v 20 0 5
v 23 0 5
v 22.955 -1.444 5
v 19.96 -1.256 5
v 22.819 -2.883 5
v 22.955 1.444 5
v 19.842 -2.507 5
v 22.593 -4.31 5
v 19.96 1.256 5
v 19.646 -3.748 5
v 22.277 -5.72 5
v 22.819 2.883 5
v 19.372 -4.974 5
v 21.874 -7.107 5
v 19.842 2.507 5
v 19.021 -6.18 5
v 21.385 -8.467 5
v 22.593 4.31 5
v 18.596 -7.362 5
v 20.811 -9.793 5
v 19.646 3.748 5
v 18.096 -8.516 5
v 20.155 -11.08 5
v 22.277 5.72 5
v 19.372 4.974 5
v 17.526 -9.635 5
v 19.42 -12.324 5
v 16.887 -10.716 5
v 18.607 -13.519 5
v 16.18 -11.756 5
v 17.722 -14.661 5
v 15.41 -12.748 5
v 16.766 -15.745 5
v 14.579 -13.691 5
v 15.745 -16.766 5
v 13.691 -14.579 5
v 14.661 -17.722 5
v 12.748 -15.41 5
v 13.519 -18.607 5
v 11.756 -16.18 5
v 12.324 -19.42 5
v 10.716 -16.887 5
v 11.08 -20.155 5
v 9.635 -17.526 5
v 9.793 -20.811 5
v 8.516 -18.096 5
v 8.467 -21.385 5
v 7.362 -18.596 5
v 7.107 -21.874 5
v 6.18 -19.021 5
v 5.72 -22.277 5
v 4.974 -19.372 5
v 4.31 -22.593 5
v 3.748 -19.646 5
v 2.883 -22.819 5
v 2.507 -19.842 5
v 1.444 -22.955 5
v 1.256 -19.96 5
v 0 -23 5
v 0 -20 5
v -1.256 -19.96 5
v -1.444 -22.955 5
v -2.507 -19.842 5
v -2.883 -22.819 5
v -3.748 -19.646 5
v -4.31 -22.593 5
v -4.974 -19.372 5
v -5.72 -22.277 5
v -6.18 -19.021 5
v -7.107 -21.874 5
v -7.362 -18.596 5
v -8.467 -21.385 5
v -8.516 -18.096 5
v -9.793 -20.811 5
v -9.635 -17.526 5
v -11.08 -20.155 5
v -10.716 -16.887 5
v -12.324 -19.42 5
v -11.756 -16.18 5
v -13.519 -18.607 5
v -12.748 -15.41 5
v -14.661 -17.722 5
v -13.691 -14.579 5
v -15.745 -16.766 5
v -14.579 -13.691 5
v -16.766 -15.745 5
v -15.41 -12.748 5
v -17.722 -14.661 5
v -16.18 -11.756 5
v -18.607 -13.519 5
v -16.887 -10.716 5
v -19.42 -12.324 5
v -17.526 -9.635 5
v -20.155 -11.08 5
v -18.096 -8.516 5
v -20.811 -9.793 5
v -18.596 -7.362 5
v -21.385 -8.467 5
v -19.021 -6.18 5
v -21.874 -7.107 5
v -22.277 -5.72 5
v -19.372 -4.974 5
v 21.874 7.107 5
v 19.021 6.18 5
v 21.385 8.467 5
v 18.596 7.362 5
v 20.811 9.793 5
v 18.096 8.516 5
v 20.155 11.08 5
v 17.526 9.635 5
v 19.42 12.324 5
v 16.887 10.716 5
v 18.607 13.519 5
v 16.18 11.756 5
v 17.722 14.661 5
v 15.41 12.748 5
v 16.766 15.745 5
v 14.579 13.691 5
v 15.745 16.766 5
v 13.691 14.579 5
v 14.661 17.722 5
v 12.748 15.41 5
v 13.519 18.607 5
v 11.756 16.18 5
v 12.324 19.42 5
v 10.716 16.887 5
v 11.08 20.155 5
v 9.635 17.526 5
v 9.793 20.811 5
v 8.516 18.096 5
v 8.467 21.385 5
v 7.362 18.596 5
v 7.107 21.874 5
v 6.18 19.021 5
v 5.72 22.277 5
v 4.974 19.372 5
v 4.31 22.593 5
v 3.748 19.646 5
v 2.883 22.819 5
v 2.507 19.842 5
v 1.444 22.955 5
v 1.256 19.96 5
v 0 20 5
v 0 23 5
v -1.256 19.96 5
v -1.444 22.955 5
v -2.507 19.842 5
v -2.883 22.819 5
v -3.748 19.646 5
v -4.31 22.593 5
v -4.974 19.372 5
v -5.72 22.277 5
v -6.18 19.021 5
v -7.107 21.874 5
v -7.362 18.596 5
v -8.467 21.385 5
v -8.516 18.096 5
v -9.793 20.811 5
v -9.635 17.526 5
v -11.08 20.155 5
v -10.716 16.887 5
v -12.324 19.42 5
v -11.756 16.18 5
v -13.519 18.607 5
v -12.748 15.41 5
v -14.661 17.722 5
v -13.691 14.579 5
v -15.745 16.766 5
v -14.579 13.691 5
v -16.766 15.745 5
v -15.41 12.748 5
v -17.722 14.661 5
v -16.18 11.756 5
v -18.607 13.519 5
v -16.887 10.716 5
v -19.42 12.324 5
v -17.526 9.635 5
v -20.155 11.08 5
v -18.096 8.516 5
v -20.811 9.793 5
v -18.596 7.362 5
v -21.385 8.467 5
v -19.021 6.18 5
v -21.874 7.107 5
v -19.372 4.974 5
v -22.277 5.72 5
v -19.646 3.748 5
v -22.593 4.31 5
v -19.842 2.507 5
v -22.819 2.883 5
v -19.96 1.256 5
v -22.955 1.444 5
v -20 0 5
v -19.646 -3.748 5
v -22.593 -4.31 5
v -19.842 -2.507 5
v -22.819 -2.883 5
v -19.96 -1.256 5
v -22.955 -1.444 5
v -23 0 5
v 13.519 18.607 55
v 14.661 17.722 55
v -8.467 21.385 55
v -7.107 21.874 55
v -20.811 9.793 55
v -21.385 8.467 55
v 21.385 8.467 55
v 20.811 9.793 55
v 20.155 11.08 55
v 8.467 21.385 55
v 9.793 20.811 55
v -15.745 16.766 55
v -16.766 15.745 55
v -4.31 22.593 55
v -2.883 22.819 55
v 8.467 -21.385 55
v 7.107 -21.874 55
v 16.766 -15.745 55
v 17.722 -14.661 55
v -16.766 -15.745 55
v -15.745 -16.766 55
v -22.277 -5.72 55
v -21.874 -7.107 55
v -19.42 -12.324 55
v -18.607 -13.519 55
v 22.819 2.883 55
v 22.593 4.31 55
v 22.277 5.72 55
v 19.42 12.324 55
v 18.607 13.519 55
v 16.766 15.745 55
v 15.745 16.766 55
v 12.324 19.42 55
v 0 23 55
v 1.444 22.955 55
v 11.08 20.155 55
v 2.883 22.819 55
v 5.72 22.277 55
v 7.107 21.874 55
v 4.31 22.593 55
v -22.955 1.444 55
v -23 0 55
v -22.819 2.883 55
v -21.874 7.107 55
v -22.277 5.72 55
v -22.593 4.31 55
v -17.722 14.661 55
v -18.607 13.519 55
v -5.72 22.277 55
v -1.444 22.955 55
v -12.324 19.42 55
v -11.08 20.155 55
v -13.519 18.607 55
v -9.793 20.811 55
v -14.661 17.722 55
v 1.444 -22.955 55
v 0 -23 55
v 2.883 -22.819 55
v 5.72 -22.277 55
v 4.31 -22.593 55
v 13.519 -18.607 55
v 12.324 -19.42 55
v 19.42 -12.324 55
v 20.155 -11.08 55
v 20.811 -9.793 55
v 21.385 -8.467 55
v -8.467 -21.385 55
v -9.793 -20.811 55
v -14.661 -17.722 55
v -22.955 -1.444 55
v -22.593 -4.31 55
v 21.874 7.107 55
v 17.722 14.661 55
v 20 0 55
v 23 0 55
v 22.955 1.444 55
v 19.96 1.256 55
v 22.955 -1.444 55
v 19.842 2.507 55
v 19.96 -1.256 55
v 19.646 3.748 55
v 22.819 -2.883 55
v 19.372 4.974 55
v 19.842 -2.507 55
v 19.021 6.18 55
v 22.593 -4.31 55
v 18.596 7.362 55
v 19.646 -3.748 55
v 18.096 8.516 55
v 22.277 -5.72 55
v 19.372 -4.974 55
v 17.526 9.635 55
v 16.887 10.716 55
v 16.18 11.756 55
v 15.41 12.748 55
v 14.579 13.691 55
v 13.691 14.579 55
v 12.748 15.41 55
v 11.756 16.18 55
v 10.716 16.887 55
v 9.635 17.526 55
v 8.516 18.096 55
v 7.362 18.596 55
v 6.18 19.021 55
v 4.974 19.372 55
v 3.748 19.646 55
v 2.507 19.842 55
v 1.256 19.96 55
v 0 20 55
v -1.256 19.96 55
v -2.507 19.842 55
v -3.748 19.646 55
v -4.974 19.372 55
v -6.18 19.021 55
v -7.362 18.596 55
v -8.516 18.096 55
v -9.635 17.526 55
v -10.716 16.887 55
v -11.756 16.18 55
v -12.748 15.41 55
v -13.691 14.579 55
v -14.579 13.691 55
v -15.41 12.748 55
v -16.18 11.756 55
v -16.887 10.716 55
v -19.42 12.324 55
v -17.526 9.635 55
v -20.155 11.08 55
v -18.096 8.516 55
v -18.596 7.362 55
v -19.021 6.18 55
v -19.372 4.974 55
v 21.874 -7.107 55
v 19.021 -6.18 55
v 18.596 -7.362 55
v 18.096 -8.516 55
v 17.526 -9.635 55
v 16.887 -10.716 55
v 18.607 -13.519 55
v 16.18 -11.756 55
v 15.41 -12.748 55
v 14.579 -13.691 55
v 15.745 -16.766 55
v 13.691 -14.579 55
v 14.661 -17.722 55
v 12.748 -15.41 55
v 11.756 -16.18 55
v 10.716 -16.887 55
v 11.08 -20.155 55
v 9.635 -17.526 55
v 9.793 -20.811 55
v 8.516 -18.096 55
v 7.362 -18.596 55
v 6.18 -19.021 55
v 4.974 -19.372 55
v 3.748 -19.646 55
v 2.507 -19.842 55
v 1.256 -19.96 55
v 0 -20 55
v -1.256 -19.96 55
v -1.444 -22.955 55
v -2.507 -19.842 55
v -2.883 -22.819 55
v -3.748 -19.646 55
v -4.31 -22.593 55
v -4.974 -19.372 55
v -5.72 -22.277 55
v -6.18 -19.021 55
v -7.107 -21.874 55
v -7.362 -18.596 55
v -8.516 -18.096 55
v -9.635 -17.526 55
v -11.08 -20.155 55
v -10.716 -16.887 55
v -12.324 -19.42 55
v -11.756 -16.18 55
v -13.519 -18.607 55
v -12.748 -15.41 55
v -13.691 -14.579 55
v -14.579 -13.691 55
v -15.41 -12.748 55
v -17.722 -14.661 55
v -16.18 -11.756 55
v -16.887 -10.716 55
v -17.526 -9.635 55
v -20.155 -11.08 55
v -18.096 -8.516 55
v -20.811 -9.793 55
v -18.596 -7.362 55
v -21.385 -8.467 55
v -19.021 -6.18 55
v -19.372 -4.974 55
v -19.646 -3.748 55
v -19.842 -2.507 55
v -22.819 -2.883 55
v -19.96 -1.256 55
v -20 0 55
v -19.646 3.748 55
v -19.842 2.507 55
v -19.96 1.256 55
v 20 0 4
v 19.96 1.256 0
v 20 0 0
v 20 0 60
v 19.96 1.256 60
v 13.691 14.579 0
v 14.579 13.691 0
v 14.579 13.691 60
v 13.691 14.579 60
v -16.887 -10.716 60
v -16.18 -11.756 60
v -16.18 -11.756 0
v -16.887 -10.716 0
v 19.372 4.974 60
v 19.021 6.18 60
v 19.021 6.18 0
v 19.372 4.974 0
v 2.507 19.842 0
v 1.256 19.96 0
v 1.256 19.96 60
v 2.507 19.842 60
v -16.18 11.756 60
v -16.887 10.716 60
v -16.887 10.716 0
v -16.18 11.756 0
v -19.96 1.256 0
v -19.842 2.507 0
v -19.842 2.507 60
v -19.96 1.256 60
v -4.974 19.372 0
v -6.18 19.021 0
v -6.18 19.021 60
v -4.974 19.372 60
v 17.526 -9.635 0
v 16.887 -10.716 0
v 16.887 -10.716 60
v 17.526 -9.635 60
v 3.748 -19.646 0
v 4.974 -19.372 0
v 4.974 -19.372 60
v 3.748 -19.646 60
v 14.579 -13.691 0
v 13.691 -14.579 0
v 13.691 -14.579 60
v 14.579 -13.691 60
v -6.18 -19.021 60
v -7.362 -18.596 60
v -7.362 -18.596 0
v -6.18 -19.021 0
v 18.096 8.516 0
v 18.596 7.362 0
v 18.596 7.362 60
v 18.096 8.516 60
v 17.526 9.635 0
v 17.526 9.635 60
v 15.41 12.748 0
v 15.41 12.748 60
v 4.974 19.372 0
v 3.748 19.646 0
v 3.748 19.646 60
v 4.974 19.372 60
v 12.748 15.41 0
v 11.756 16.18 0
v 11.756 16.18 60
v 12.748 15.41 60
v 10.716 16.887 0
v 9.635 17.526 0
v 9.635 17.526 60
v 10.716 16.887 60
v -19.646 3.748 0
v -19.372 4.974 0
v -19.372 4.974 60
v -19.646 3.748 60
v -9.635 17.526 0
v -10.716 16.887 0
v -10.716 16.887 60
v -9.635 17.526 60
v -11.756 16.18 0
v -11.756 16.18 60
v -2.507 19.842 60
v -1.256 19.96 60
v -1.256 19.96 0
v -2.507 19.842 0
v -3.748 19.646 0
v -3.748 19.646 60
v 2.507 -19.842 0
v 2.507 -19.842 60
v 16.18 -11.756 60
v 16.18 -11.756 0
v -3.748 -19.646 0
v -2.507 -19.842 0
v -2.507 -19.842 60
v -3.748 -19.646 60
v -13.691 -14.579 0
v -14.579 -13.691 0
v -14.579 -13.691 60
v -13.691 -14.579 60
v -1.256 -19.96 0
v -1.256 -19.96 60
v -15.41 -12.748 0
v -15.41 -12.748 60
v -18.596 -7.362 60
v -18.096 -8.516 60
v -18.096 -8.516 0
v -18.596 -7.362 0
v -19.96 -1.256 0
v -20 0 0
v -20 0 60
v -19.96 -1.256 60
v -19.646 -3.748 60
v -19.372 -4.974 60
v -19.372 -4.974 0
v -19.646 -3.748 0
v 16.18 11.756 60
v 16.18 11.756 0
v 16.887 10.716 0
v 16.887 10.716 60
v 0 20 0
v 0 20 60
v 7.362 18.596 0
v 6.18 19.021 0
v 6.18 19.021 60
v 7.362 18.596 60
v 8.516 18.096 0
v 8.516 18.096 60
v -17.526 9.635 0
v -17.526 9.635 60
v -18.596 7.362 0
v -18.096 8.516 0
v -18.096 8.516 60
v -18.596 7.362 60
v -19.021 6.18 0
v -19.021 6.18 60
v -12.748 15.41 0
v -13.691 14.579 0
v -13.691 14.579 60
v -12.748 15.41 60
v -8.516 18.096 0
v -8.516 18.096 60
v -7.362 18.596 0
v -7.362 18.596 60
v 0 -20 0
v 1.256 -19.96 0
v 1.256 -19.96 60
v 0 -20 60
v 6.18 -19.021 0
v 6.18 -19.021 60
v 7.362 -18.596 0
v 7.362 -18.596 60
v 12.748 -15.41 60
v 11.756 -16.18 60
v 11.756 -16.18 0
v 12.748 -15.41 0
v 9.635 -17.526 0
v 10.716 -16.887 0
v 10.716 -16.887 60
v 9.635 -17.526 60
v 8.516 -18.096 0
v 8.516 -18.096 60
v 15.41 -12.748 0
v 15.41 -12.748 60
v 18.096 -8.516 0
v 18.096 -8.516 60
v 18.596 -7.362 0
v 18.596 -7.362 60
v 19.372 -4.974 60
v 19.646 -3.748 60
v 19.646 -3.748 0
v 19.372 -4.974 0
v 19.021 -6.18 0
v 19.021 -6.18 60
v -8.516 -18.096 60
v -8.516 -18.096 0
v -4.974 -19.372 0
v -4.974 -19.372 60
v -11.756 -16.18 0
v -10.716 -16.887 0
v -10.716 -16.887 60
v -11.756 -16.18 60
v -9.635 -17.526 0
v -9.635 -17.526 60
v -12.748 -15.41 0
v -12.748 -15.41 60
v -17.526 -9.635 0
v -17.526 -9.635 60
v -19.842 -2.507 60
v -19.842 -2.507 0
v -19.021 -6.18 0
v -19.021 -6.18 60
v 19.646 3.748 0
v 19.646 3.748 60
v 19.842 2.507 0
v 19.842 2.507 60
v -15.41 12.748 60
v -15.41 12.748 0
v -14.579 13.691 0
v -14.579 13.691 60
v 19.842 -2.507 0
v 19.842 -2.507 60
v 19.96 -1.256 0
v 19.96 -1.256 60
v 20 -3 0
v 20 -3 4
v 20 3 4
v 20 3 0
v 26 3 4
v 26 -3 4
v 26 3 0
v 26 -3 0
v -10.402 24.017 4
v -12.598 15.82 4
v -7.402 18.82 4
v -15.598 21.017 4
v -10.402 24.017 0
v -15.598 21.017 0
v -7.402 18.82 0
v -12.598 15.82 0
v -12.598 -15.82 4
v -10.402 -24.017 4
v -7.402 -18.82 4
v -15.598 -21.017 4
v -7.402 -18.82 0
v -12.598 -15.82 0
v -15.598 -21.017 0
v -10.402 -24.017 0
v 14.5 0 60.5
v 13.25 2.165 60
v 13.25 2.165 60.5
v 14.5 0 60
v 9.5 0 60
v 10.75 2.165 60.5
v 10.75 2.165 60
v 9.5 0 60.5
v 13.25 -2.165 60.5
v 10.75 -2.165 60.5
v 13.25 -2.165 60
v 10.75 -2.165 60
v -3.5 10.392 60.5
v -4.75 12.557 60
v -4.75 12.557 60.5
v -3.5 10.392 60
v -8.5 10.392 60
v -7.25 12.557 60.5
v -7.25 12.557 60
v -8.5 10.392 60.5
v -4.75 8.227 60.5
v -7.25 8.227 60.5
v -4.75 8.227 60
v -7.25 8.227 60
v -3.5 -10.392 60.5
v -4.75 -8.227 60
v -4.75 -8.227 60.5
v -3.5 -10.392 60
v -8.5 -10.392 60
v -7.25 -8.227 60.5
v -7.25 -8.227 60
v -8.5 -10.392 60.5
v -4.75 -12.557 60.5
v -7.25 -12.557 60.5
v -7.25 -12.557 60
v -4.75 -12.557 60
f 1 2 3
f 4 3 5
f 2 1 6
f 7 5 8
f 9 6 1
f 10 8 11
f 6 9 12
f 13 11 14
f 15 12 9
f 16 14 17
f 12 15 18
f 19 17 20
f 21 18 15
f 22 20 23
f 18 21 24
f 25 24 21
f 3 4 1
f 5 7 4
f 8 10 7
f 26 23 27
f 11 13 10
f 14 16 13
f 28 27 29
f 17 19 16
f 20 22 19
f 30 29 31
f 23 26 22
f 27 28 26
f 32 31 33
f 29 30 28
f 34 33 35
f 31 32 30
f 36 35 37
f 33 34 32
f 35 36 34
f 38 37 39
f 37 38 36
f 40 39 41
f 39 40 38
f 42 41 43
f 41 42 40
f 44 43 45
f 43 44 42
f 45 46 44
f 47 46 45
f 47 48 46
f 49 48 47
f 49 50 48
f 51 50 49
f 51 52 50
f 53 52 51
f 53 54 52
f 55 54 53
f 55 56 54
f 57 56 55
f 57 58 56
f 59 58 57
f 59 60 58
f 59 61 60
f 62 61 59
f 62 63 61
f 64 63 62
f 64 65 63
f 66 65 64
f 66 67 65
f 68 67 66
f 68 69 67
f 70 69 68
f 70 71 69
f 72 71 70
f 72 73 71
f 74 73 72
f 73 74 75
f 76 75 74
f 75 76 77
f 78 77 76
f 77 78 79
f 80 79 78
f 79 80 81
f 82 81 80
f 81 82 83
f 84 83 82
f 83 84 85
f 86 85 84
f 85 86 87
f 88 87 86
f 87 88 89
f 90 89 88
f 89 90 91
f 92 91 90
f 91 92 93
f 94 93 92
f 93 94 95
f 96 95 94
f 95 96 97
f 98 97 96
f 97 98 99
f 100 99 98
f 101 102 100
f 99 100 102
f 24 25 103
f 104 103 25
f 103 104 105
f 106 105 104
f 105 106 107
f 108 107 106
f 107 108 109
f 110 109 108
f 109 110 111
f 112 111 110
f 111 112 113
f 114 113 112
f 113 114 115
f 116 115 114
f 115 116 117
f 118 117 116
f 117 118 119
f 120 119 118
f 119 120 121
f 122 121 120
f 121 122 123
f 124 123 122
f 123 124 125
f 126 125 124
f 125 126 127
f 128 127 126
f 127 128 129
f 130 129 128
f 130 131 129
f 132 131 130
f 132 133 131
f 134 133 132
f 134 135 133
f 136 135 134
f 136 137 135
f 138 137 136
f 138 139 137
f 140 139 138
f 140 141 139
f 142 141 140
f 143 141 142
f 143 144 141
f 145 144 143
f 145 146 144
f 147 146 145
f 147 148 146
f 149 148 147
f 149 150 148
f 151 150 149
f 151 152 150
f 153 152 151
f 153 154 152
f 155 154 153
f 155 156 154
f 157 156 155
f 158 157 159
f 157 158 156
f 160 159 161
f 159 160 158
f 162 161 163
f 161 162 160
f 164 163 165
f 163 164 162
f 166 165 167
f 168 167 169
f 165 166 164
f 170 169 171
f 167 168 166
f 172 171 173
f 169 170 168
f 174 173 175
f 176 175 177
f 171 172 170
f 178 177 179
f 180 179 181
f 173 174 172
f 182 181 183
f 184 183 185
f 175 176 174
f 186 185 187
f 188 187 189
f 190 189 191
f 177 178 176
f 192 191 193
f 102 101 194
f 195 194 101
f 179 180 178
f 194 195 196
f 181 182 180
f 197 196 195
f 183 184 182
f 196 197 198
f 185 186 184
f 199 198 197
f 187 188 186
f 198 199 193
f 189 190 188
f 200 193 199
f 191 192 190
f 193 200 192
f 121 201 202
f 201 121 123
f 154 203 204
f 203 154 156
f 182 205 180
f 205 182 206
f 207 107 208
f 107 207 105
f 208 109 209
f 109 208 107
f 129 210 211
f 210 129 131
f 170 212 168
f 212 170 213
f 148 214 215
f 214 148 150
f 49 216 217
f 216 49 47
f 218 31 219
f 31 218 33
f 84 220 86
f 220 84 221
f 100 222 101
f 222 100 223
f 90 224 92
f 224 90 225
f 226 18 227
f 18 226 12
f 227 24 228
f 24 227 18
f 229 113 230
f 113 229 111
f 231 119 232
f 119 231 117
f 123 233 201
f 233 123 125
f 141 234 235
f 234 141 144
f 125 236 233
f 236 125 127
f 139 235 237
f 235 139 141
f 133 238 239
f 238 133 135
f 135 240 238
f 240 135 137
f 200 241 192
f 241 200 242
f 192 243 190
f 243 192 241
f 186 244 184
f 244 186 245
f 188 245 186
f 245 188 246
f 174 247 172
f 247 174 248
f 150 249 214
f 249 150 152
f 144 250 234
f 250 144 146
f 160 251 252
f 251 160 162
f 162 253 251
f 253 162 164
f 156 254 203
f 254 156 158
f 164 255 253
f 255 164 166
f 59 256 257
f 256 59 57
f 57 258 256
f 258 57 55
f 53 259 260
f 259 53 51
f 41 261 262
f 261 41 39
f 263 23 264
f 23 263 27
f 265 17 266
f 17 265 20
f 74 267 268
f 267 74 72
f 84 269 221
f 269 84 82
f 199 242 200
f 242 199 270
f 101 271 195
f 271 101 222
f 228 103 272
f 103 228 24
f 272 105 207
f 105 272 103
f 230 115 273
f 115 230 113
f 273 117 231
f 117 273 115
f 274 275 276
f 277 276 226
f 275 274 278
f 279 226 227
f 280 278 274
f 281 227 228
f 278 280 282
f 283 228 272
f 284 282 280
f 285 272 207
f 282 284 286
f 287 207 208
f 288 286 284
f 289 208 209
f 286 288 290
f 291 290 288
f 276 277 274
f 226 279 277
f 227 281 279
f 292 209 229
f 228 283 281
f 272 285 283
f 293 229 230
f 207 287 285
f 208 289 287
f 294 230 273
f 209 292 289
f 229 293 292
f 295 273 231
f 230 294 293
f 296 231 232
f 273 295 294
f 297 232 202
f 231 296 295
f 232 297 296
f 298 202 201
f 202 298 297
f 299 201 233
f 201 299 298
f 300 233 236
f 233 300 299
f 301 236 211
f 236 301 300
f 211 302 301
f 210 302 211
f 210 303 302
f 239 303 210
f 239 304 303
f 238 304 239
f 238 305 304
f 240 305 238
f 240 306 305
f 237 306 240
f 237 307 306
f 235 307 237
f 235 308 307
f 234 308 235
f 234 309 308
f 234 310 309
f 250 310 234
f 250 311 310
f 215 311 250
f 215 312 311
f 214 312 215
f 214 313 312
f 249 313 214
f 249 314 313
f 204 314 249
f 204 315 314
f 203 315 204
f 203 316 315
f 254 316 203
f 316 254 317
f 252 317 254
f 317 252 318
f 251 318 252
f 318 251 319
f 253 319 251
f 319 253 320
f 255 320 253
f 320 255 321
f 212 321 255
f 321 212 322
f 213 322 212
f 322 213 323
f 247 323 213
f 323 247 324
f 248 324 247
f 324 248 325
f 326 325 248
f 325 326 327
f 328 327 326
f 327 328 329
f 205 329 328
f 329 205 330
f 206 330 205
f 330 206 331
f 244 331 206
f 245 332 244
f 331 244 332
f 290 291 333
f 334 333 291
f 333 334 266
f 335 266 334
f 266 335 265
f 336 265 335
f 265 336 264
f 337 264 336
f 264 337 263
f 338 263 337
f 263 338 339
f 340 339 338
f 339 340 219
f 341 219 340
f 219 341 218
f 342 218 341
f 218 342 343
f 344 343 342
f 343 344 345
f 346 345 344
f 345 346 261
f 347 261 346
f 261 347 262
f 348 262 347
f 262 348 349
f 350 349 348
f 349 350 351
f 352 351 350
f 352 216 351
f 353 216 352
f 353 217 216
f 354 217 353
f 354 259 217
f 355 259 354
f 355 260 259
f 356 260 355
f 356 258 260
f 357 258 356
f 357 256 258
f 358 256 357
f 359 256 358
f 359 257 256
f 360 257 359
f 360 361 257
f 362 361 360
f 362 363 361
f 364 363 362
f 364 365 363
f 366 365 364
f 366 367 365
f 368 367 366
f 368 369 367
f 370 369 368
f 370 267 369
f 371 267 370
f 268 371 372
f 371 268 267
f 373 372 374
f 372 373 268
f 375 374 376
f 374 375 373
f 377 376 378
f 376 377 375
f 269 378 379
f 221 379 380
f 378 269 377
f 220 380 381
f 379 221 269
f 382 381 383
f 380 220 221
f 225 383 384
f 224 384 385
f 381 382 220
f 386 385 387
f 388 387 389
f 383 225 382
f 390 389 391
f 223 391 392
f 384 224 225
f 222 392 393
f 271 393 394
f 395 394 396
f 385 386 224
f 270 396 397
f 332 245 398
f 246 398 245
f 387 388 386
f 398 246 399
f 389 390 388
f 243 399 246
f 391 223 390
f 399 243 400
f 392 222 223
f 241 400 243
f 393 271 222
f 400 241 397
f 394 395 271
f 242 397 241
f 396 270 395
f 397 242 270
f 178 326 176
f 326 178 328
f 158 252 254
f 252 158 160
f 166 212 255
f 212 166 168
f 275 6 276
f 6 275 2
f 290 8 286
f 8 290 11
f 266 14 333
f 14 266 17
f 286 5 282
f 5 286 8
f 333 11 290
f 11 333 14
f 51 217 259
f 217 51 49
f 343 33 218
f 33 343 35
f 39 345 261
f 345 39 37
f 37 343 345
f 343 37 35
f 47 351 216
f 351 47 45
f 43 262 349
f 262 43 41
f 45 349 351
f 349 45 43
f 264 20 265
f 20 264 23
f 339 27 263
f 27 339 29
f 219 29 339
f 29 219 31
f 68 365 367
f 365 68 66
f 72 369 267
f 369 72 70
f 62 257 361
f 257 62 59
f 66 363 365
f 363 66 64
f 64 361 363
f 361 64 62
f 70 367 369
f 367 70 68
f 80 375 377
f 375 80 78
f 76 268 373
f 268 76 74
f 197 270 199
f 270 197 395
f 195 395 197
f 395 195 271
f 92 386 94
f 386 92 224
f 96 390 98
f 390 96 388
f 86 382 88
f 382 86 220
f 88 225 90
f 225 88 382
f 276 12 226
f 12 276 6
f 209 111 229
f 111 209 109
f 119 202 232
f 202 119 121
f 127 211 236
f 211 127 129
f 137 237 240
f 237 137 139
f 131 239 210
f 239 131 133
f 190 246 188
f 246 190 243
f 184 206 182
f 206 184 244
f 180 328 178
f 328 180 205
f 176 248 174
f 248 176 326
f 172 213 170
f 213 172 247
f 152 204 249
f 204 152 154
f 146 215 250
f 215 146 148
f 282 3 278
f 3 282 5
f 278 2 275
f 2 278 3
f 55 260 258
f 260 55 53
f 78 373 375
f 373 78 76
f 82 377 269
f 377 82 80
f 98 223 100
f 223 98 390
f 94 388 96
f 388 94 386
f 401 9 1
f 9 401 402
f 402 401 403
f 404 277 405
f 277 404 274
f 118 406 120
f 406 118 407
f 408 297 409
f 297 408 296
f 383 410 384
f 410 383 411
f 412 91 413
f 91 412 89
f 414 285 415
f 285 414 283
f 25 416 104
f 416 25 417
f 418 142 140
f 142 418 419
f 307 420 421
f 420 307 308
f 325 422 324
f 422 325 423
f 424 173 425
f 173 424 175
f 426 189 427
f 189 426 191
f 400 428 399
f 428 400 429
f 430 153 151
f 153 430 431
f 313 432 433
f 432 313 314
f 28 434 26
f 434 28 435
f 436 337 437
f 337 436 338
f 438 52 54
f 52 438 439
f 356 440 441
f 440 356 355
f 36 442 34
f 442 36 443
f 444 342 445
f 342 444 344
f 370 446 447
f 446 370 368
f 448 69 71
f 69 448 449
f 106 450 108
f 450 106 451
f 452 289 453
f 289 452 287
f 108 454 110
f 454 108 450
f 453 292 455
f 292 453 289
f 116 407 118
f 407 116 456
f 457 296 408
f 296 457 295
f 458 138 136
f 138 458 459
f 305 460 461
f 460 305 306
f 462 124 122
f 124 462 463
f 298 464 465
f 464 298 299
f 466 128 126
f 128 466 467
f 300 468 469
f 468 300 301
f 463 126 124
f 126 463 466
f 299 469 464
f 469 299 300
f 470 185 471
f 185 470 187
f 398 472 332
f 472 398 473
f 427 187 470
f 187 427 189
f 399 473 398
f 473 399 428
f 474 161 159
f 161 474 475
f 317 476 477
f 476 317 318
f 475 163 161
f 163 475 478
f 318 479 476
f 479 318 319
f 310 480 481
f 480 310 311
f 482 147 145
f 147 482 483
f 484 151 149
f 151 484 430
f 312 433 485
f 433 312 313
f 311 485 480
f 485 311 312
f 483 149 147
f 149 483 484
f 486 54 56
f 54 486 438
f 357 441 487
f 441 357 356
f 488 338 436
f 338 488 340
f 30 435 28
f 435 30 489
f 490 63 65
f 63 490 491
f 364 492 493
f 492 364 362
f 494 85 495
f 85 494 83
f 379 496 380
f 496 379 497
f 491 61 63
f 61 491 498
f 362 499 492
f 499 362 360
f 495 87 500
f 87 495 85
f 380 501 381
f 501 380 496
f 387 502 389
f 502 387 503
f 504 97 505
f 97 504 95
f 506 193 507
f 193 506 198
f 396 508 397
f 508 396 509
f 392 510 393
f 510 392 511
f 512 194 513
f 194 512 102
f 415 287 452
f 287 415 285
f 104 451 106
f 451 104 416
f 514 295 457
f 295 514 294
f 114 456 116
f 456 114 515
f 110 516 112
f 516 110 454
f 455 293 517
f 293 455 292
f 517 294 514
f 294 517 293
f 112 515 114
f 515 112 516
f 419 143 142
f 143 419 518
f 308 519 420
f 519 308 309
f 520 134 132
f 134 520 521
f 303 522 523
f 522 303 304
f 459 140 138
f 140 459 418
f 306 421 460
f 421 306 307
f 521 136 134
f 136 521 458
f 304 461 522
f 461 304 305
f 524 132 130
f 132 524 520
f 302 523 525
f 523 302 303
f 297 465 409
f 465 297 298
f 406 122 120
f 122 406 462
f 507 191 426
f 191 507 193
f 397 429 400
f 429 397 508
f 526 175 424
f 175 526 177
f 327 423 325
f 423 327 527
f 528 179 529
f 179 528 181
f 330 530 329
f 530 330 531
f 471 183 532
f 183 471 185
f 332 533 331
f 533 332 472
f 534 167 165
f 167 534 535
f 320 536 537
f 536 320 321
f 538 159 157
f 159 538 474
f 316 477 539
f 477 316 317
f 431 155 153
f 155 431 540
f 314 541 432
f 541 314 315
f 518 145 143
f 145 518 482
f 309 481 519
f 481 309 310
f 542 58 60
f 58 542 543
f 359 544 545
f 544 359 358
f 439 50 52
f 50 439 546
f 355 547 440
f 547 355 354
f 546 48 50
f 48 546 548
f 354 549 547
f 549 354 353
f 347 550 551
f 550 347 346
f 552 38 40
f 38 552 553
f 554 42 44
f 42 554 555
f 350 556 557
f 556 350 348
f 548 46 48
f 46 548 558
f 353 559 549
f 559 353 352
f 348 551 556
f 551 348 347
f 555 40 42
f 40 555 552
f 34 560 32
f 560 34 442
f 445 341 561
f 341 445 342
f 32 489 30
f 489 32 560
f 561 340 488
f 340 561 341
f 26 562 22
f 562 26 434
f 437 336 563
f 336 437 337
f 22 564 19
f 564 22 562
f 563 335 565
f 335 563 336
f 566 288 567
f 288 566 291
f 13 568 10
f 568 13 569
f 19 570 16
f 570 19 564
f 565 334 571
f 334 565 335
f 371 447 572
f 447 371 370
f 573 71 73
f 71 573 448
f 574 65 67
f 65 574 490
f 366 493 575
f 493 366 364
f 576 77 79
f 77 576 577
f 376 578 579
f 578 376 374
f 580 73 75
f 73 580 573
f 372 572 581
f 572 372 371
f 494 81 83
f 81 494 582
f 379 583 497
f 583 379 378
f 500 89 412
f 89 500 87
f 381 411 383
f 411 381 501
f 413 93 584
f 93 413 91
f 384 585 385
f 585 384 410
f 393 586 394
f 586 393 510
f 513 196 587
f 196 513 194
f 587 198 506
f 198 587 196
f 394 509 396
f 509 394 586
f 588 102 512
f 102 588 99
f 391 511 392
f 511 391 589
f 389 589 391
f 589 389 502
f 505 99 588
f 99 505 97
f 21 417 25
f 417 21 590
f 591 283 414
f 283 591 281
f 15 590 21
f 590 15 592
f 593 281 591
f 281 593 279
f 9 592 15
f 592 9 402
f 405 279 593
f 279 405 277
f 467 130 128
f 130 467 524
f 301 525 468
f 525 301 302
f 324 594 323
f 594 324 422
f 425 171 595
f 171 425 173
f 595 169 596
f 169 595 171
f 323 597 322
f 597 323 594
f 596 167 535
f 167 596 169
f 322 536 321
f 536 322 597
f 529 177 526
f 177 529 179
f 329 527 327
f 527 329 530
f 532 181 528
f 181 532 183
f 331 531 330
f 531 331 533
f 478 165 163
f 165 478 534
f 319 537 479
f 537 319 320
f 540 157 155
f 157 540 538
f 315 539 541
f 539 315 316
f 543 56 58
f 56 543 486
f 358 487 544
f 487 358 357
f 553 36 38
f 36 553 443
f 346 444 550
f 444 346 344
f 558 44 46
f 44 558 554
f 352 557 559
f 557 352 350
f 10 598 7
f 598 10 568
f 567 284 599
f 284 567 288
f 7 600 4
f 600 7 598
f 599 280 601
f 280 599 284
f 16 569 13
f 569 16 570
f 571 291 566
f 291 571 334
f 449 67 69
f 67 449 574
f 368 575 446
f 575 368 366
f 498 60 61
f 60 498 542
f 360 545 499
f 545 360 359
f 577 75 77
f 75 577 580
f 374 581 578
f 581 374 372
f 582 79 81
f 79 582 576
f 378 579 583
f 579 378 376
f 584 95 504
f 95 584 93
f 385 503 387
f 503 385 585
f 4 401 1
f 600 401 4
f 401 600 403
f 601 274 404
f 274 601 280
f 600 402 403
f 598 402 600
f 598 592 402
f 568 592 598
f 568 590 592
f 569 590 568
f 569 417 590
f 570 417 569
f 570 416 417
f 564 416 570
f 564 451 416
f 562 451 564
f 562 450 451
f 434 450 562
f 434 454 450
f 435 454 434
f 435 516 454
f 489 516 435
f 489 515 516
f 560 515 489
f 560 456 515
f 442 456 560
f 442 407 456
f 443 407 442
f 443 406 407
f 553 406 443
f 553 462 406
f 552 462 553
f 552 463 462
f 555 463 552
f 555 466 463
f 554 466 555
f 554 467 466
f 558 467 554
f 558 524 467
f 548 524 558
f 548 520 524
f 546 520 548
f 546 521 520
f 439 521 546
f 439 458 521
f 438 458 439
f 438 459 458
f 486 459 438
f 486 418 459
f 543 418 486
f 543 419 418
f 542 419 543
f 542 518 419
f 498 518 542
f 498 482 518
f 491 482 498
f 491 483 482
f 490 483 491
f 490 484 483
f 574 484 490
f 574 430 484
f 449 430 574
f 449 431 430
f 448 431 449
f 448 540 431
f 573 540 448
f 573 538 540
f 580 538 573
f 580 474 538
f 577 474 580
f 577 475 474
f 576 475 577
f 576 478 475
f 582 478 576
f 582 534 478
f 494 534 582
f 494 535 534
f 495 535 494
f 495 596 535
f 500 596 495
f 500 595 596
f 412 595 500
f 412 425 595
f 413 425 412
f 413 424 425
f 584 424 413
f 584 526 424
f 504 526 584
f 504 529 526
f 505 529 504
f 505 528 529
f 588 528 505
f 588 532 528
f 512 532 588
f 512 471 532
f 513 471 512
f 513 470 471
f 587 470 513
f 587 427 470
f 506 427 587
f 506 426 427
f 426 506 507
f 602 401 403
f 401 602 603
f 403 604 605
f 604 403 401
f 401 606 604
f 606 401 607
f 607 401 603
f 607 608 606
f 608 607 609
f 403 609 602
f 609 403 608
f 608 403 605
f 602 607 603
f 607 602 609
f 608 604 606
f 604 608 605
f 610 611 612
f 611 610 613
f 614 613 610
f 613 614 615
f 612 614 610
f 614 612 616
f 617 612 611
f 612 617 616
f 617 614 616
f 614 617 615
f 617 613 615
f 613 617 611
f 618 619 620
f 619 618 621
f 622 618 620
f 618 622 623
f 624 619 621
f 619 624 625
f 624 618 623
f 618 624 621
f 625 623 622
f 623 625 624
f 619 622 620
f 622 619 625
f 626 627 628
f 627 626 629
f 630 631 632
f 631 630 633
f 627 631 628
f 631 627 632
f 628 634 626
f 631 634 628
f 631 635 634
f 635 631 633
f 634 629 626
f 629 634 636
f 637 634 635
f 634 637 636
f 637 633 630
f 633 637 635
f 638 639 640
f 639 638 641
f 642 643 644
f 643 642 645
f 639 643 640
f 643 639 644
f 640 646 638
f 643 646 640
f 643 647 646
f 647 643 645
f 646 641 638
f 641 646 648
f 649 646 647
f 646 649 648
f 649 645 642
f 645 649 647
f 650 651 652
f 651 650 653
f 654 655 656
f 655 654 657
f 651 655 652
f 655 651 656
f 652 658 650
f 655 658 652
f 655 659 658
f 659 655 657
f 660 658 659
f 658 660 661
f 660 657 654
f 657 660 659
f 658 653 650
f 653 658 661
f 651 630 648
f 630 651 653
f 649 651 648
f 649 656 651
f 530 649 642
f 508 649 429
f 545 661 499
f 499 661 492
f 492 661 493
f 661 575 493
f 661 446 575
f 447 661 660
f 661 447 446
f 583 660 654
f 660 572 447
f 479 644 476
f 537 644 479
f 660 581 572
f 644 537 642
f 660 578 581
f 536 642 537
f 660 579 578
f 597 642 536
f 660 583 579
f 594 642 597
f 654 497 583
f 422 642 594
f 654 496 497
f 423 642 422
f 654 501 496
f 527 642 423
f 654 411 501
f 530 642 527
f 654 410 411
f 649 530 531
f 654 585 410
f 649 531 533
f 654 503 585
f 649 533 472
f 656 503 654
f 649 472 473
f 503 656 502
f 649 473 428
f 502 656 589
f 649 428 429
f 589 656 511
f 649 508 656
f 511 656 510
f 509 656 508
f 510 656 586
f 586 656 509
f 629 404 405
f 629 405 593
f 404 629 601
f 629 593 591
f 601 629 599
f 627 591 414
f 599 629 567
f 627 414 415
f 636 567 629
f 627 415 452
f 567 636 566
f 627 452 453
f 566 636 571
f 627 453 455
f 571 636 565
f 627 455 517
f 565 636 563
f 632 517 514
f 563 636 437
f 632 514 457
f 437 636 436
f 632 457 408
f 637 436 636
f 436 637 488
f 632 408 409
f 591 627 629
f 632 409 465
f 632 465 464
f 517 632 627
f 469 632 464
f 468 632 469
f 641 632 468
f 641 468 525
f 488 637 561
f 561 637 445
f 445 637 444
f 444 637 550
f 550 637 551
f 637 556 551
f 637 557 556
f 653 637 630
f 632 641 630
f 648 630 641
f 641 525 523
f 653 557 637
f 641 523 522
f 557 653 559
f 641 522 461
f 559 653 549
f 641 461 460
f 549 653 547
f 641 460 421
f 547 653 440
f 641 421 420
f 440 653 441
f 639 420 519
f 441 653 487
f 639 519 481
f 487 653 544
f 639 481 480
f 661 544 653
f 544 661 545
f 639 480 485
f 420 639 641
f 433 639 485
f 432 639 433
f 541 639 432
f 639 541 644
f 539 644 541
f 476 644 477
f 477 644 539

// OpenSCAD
$fn = 100;

// Parameters
body_diameter = 40;
body_length = 60;

sleeve_thickness = 3;
rib_count = 6;
rib_spacing = 5;
rib_height = 3;
rib_width = 3;

face_plate_thickness = 5;
lug_length = 6;
lug_width = 6;
lug_height = 4;

bolt_diameter = 5;
bolt_head_size = 6;
bolt_spacing_radius = 12;

socket_diameter = 10;
socket_depth = 3;

// Main Assembly
module flexible_coupling() {
    union() {
        // Central Body
        central_cylindrical_body();

        // Helical Ribbed Sleeve
        translate([0, 0, face_plate_thickness])
            helical_ribbed_sleeve();

        // Front Face Plate with Lugs
        front_face_plate_with_lugs();

        // Rear Face Plate with Socket and Bolts
        translate([0, 0, body_length - face_plate_thickness])
            rear_face_plate_with_socket();
    }
}

// Central Body
module central_cylindrical_body() {
    translate([0, 0, 0])
        cylinder(h = body_length, d = body_diameter);
}

// Helical Ribbed Sleeve
module helical_ribbed_sleeve() {
    for (i = [0 : rib_count - 1]) {
        rotate([0, 0, i * 360 / rib_count])
            translate([body_diameter / 2 - rib_width / 2, 0, i * rib_spacing])
                cube([rib_width, rib_height, rib_spacing + 1], center = false);
    }
    // Outer sleeve cylinder
    difference() {
        cylinder(h = body_length - 2 * face_plate_thickness, d = body_diameter + 2 * sleeve_thickness);
        translate([0, 0, -1])
            cylinder(h = body_length, d = body_diameter);
    }
}

// Front Face Plate with Lugs
module front_face_plate_with_lugs() {
    union() {
        // Face plate
        cylinder(h = face_plate_thickness, d = body_diameter);

        // Central hole
        difference() {
            cylinder(h = face_plate_thickness + 1, d = body_diameter);
            translate([0, 0, -1])
                cylinder(h = face_plate_thickness + 2, d = socket_diameter);
        }

        // Locking Lugs
        for (i = [0 : 2]) {
            angle = i * 120;
            rotate([0, 0, angle])
                translate([body_diameter / 2, -lug_width / 2, 0])
                    cube([lug_length, lug_width, lug_height]);
        }
    }
}

// Rear Face Plate with Socket and Bolts
module rear_face_plate_with_socket() {
    union() {
        // Face plate
        cylinder(h = face_plate_thickness, d = body_diameter);

        // Central socket
        translate([0, 0, 0])
            cylinder(h = socket_depth, d = socket_diameter);

        // Hexagonal bolts
        for (i = [0 : 2]) {
            angle = i * 120;
            x = bolt_spacing_radius * cos(angle);
            y = bolt_spacing_radius * sin(angle);
            translate([x, y, face_plate_thickness / 2])
                hex_bolt();
        }
    }
}

// Hexagonal Bolt Head
module hex_bolt() {
    rotate([0, 0, 0])
        cylinder(h = 3, d = bolt_diameter, $fn = 6);
}

// Render the model
flexible_coupling();
